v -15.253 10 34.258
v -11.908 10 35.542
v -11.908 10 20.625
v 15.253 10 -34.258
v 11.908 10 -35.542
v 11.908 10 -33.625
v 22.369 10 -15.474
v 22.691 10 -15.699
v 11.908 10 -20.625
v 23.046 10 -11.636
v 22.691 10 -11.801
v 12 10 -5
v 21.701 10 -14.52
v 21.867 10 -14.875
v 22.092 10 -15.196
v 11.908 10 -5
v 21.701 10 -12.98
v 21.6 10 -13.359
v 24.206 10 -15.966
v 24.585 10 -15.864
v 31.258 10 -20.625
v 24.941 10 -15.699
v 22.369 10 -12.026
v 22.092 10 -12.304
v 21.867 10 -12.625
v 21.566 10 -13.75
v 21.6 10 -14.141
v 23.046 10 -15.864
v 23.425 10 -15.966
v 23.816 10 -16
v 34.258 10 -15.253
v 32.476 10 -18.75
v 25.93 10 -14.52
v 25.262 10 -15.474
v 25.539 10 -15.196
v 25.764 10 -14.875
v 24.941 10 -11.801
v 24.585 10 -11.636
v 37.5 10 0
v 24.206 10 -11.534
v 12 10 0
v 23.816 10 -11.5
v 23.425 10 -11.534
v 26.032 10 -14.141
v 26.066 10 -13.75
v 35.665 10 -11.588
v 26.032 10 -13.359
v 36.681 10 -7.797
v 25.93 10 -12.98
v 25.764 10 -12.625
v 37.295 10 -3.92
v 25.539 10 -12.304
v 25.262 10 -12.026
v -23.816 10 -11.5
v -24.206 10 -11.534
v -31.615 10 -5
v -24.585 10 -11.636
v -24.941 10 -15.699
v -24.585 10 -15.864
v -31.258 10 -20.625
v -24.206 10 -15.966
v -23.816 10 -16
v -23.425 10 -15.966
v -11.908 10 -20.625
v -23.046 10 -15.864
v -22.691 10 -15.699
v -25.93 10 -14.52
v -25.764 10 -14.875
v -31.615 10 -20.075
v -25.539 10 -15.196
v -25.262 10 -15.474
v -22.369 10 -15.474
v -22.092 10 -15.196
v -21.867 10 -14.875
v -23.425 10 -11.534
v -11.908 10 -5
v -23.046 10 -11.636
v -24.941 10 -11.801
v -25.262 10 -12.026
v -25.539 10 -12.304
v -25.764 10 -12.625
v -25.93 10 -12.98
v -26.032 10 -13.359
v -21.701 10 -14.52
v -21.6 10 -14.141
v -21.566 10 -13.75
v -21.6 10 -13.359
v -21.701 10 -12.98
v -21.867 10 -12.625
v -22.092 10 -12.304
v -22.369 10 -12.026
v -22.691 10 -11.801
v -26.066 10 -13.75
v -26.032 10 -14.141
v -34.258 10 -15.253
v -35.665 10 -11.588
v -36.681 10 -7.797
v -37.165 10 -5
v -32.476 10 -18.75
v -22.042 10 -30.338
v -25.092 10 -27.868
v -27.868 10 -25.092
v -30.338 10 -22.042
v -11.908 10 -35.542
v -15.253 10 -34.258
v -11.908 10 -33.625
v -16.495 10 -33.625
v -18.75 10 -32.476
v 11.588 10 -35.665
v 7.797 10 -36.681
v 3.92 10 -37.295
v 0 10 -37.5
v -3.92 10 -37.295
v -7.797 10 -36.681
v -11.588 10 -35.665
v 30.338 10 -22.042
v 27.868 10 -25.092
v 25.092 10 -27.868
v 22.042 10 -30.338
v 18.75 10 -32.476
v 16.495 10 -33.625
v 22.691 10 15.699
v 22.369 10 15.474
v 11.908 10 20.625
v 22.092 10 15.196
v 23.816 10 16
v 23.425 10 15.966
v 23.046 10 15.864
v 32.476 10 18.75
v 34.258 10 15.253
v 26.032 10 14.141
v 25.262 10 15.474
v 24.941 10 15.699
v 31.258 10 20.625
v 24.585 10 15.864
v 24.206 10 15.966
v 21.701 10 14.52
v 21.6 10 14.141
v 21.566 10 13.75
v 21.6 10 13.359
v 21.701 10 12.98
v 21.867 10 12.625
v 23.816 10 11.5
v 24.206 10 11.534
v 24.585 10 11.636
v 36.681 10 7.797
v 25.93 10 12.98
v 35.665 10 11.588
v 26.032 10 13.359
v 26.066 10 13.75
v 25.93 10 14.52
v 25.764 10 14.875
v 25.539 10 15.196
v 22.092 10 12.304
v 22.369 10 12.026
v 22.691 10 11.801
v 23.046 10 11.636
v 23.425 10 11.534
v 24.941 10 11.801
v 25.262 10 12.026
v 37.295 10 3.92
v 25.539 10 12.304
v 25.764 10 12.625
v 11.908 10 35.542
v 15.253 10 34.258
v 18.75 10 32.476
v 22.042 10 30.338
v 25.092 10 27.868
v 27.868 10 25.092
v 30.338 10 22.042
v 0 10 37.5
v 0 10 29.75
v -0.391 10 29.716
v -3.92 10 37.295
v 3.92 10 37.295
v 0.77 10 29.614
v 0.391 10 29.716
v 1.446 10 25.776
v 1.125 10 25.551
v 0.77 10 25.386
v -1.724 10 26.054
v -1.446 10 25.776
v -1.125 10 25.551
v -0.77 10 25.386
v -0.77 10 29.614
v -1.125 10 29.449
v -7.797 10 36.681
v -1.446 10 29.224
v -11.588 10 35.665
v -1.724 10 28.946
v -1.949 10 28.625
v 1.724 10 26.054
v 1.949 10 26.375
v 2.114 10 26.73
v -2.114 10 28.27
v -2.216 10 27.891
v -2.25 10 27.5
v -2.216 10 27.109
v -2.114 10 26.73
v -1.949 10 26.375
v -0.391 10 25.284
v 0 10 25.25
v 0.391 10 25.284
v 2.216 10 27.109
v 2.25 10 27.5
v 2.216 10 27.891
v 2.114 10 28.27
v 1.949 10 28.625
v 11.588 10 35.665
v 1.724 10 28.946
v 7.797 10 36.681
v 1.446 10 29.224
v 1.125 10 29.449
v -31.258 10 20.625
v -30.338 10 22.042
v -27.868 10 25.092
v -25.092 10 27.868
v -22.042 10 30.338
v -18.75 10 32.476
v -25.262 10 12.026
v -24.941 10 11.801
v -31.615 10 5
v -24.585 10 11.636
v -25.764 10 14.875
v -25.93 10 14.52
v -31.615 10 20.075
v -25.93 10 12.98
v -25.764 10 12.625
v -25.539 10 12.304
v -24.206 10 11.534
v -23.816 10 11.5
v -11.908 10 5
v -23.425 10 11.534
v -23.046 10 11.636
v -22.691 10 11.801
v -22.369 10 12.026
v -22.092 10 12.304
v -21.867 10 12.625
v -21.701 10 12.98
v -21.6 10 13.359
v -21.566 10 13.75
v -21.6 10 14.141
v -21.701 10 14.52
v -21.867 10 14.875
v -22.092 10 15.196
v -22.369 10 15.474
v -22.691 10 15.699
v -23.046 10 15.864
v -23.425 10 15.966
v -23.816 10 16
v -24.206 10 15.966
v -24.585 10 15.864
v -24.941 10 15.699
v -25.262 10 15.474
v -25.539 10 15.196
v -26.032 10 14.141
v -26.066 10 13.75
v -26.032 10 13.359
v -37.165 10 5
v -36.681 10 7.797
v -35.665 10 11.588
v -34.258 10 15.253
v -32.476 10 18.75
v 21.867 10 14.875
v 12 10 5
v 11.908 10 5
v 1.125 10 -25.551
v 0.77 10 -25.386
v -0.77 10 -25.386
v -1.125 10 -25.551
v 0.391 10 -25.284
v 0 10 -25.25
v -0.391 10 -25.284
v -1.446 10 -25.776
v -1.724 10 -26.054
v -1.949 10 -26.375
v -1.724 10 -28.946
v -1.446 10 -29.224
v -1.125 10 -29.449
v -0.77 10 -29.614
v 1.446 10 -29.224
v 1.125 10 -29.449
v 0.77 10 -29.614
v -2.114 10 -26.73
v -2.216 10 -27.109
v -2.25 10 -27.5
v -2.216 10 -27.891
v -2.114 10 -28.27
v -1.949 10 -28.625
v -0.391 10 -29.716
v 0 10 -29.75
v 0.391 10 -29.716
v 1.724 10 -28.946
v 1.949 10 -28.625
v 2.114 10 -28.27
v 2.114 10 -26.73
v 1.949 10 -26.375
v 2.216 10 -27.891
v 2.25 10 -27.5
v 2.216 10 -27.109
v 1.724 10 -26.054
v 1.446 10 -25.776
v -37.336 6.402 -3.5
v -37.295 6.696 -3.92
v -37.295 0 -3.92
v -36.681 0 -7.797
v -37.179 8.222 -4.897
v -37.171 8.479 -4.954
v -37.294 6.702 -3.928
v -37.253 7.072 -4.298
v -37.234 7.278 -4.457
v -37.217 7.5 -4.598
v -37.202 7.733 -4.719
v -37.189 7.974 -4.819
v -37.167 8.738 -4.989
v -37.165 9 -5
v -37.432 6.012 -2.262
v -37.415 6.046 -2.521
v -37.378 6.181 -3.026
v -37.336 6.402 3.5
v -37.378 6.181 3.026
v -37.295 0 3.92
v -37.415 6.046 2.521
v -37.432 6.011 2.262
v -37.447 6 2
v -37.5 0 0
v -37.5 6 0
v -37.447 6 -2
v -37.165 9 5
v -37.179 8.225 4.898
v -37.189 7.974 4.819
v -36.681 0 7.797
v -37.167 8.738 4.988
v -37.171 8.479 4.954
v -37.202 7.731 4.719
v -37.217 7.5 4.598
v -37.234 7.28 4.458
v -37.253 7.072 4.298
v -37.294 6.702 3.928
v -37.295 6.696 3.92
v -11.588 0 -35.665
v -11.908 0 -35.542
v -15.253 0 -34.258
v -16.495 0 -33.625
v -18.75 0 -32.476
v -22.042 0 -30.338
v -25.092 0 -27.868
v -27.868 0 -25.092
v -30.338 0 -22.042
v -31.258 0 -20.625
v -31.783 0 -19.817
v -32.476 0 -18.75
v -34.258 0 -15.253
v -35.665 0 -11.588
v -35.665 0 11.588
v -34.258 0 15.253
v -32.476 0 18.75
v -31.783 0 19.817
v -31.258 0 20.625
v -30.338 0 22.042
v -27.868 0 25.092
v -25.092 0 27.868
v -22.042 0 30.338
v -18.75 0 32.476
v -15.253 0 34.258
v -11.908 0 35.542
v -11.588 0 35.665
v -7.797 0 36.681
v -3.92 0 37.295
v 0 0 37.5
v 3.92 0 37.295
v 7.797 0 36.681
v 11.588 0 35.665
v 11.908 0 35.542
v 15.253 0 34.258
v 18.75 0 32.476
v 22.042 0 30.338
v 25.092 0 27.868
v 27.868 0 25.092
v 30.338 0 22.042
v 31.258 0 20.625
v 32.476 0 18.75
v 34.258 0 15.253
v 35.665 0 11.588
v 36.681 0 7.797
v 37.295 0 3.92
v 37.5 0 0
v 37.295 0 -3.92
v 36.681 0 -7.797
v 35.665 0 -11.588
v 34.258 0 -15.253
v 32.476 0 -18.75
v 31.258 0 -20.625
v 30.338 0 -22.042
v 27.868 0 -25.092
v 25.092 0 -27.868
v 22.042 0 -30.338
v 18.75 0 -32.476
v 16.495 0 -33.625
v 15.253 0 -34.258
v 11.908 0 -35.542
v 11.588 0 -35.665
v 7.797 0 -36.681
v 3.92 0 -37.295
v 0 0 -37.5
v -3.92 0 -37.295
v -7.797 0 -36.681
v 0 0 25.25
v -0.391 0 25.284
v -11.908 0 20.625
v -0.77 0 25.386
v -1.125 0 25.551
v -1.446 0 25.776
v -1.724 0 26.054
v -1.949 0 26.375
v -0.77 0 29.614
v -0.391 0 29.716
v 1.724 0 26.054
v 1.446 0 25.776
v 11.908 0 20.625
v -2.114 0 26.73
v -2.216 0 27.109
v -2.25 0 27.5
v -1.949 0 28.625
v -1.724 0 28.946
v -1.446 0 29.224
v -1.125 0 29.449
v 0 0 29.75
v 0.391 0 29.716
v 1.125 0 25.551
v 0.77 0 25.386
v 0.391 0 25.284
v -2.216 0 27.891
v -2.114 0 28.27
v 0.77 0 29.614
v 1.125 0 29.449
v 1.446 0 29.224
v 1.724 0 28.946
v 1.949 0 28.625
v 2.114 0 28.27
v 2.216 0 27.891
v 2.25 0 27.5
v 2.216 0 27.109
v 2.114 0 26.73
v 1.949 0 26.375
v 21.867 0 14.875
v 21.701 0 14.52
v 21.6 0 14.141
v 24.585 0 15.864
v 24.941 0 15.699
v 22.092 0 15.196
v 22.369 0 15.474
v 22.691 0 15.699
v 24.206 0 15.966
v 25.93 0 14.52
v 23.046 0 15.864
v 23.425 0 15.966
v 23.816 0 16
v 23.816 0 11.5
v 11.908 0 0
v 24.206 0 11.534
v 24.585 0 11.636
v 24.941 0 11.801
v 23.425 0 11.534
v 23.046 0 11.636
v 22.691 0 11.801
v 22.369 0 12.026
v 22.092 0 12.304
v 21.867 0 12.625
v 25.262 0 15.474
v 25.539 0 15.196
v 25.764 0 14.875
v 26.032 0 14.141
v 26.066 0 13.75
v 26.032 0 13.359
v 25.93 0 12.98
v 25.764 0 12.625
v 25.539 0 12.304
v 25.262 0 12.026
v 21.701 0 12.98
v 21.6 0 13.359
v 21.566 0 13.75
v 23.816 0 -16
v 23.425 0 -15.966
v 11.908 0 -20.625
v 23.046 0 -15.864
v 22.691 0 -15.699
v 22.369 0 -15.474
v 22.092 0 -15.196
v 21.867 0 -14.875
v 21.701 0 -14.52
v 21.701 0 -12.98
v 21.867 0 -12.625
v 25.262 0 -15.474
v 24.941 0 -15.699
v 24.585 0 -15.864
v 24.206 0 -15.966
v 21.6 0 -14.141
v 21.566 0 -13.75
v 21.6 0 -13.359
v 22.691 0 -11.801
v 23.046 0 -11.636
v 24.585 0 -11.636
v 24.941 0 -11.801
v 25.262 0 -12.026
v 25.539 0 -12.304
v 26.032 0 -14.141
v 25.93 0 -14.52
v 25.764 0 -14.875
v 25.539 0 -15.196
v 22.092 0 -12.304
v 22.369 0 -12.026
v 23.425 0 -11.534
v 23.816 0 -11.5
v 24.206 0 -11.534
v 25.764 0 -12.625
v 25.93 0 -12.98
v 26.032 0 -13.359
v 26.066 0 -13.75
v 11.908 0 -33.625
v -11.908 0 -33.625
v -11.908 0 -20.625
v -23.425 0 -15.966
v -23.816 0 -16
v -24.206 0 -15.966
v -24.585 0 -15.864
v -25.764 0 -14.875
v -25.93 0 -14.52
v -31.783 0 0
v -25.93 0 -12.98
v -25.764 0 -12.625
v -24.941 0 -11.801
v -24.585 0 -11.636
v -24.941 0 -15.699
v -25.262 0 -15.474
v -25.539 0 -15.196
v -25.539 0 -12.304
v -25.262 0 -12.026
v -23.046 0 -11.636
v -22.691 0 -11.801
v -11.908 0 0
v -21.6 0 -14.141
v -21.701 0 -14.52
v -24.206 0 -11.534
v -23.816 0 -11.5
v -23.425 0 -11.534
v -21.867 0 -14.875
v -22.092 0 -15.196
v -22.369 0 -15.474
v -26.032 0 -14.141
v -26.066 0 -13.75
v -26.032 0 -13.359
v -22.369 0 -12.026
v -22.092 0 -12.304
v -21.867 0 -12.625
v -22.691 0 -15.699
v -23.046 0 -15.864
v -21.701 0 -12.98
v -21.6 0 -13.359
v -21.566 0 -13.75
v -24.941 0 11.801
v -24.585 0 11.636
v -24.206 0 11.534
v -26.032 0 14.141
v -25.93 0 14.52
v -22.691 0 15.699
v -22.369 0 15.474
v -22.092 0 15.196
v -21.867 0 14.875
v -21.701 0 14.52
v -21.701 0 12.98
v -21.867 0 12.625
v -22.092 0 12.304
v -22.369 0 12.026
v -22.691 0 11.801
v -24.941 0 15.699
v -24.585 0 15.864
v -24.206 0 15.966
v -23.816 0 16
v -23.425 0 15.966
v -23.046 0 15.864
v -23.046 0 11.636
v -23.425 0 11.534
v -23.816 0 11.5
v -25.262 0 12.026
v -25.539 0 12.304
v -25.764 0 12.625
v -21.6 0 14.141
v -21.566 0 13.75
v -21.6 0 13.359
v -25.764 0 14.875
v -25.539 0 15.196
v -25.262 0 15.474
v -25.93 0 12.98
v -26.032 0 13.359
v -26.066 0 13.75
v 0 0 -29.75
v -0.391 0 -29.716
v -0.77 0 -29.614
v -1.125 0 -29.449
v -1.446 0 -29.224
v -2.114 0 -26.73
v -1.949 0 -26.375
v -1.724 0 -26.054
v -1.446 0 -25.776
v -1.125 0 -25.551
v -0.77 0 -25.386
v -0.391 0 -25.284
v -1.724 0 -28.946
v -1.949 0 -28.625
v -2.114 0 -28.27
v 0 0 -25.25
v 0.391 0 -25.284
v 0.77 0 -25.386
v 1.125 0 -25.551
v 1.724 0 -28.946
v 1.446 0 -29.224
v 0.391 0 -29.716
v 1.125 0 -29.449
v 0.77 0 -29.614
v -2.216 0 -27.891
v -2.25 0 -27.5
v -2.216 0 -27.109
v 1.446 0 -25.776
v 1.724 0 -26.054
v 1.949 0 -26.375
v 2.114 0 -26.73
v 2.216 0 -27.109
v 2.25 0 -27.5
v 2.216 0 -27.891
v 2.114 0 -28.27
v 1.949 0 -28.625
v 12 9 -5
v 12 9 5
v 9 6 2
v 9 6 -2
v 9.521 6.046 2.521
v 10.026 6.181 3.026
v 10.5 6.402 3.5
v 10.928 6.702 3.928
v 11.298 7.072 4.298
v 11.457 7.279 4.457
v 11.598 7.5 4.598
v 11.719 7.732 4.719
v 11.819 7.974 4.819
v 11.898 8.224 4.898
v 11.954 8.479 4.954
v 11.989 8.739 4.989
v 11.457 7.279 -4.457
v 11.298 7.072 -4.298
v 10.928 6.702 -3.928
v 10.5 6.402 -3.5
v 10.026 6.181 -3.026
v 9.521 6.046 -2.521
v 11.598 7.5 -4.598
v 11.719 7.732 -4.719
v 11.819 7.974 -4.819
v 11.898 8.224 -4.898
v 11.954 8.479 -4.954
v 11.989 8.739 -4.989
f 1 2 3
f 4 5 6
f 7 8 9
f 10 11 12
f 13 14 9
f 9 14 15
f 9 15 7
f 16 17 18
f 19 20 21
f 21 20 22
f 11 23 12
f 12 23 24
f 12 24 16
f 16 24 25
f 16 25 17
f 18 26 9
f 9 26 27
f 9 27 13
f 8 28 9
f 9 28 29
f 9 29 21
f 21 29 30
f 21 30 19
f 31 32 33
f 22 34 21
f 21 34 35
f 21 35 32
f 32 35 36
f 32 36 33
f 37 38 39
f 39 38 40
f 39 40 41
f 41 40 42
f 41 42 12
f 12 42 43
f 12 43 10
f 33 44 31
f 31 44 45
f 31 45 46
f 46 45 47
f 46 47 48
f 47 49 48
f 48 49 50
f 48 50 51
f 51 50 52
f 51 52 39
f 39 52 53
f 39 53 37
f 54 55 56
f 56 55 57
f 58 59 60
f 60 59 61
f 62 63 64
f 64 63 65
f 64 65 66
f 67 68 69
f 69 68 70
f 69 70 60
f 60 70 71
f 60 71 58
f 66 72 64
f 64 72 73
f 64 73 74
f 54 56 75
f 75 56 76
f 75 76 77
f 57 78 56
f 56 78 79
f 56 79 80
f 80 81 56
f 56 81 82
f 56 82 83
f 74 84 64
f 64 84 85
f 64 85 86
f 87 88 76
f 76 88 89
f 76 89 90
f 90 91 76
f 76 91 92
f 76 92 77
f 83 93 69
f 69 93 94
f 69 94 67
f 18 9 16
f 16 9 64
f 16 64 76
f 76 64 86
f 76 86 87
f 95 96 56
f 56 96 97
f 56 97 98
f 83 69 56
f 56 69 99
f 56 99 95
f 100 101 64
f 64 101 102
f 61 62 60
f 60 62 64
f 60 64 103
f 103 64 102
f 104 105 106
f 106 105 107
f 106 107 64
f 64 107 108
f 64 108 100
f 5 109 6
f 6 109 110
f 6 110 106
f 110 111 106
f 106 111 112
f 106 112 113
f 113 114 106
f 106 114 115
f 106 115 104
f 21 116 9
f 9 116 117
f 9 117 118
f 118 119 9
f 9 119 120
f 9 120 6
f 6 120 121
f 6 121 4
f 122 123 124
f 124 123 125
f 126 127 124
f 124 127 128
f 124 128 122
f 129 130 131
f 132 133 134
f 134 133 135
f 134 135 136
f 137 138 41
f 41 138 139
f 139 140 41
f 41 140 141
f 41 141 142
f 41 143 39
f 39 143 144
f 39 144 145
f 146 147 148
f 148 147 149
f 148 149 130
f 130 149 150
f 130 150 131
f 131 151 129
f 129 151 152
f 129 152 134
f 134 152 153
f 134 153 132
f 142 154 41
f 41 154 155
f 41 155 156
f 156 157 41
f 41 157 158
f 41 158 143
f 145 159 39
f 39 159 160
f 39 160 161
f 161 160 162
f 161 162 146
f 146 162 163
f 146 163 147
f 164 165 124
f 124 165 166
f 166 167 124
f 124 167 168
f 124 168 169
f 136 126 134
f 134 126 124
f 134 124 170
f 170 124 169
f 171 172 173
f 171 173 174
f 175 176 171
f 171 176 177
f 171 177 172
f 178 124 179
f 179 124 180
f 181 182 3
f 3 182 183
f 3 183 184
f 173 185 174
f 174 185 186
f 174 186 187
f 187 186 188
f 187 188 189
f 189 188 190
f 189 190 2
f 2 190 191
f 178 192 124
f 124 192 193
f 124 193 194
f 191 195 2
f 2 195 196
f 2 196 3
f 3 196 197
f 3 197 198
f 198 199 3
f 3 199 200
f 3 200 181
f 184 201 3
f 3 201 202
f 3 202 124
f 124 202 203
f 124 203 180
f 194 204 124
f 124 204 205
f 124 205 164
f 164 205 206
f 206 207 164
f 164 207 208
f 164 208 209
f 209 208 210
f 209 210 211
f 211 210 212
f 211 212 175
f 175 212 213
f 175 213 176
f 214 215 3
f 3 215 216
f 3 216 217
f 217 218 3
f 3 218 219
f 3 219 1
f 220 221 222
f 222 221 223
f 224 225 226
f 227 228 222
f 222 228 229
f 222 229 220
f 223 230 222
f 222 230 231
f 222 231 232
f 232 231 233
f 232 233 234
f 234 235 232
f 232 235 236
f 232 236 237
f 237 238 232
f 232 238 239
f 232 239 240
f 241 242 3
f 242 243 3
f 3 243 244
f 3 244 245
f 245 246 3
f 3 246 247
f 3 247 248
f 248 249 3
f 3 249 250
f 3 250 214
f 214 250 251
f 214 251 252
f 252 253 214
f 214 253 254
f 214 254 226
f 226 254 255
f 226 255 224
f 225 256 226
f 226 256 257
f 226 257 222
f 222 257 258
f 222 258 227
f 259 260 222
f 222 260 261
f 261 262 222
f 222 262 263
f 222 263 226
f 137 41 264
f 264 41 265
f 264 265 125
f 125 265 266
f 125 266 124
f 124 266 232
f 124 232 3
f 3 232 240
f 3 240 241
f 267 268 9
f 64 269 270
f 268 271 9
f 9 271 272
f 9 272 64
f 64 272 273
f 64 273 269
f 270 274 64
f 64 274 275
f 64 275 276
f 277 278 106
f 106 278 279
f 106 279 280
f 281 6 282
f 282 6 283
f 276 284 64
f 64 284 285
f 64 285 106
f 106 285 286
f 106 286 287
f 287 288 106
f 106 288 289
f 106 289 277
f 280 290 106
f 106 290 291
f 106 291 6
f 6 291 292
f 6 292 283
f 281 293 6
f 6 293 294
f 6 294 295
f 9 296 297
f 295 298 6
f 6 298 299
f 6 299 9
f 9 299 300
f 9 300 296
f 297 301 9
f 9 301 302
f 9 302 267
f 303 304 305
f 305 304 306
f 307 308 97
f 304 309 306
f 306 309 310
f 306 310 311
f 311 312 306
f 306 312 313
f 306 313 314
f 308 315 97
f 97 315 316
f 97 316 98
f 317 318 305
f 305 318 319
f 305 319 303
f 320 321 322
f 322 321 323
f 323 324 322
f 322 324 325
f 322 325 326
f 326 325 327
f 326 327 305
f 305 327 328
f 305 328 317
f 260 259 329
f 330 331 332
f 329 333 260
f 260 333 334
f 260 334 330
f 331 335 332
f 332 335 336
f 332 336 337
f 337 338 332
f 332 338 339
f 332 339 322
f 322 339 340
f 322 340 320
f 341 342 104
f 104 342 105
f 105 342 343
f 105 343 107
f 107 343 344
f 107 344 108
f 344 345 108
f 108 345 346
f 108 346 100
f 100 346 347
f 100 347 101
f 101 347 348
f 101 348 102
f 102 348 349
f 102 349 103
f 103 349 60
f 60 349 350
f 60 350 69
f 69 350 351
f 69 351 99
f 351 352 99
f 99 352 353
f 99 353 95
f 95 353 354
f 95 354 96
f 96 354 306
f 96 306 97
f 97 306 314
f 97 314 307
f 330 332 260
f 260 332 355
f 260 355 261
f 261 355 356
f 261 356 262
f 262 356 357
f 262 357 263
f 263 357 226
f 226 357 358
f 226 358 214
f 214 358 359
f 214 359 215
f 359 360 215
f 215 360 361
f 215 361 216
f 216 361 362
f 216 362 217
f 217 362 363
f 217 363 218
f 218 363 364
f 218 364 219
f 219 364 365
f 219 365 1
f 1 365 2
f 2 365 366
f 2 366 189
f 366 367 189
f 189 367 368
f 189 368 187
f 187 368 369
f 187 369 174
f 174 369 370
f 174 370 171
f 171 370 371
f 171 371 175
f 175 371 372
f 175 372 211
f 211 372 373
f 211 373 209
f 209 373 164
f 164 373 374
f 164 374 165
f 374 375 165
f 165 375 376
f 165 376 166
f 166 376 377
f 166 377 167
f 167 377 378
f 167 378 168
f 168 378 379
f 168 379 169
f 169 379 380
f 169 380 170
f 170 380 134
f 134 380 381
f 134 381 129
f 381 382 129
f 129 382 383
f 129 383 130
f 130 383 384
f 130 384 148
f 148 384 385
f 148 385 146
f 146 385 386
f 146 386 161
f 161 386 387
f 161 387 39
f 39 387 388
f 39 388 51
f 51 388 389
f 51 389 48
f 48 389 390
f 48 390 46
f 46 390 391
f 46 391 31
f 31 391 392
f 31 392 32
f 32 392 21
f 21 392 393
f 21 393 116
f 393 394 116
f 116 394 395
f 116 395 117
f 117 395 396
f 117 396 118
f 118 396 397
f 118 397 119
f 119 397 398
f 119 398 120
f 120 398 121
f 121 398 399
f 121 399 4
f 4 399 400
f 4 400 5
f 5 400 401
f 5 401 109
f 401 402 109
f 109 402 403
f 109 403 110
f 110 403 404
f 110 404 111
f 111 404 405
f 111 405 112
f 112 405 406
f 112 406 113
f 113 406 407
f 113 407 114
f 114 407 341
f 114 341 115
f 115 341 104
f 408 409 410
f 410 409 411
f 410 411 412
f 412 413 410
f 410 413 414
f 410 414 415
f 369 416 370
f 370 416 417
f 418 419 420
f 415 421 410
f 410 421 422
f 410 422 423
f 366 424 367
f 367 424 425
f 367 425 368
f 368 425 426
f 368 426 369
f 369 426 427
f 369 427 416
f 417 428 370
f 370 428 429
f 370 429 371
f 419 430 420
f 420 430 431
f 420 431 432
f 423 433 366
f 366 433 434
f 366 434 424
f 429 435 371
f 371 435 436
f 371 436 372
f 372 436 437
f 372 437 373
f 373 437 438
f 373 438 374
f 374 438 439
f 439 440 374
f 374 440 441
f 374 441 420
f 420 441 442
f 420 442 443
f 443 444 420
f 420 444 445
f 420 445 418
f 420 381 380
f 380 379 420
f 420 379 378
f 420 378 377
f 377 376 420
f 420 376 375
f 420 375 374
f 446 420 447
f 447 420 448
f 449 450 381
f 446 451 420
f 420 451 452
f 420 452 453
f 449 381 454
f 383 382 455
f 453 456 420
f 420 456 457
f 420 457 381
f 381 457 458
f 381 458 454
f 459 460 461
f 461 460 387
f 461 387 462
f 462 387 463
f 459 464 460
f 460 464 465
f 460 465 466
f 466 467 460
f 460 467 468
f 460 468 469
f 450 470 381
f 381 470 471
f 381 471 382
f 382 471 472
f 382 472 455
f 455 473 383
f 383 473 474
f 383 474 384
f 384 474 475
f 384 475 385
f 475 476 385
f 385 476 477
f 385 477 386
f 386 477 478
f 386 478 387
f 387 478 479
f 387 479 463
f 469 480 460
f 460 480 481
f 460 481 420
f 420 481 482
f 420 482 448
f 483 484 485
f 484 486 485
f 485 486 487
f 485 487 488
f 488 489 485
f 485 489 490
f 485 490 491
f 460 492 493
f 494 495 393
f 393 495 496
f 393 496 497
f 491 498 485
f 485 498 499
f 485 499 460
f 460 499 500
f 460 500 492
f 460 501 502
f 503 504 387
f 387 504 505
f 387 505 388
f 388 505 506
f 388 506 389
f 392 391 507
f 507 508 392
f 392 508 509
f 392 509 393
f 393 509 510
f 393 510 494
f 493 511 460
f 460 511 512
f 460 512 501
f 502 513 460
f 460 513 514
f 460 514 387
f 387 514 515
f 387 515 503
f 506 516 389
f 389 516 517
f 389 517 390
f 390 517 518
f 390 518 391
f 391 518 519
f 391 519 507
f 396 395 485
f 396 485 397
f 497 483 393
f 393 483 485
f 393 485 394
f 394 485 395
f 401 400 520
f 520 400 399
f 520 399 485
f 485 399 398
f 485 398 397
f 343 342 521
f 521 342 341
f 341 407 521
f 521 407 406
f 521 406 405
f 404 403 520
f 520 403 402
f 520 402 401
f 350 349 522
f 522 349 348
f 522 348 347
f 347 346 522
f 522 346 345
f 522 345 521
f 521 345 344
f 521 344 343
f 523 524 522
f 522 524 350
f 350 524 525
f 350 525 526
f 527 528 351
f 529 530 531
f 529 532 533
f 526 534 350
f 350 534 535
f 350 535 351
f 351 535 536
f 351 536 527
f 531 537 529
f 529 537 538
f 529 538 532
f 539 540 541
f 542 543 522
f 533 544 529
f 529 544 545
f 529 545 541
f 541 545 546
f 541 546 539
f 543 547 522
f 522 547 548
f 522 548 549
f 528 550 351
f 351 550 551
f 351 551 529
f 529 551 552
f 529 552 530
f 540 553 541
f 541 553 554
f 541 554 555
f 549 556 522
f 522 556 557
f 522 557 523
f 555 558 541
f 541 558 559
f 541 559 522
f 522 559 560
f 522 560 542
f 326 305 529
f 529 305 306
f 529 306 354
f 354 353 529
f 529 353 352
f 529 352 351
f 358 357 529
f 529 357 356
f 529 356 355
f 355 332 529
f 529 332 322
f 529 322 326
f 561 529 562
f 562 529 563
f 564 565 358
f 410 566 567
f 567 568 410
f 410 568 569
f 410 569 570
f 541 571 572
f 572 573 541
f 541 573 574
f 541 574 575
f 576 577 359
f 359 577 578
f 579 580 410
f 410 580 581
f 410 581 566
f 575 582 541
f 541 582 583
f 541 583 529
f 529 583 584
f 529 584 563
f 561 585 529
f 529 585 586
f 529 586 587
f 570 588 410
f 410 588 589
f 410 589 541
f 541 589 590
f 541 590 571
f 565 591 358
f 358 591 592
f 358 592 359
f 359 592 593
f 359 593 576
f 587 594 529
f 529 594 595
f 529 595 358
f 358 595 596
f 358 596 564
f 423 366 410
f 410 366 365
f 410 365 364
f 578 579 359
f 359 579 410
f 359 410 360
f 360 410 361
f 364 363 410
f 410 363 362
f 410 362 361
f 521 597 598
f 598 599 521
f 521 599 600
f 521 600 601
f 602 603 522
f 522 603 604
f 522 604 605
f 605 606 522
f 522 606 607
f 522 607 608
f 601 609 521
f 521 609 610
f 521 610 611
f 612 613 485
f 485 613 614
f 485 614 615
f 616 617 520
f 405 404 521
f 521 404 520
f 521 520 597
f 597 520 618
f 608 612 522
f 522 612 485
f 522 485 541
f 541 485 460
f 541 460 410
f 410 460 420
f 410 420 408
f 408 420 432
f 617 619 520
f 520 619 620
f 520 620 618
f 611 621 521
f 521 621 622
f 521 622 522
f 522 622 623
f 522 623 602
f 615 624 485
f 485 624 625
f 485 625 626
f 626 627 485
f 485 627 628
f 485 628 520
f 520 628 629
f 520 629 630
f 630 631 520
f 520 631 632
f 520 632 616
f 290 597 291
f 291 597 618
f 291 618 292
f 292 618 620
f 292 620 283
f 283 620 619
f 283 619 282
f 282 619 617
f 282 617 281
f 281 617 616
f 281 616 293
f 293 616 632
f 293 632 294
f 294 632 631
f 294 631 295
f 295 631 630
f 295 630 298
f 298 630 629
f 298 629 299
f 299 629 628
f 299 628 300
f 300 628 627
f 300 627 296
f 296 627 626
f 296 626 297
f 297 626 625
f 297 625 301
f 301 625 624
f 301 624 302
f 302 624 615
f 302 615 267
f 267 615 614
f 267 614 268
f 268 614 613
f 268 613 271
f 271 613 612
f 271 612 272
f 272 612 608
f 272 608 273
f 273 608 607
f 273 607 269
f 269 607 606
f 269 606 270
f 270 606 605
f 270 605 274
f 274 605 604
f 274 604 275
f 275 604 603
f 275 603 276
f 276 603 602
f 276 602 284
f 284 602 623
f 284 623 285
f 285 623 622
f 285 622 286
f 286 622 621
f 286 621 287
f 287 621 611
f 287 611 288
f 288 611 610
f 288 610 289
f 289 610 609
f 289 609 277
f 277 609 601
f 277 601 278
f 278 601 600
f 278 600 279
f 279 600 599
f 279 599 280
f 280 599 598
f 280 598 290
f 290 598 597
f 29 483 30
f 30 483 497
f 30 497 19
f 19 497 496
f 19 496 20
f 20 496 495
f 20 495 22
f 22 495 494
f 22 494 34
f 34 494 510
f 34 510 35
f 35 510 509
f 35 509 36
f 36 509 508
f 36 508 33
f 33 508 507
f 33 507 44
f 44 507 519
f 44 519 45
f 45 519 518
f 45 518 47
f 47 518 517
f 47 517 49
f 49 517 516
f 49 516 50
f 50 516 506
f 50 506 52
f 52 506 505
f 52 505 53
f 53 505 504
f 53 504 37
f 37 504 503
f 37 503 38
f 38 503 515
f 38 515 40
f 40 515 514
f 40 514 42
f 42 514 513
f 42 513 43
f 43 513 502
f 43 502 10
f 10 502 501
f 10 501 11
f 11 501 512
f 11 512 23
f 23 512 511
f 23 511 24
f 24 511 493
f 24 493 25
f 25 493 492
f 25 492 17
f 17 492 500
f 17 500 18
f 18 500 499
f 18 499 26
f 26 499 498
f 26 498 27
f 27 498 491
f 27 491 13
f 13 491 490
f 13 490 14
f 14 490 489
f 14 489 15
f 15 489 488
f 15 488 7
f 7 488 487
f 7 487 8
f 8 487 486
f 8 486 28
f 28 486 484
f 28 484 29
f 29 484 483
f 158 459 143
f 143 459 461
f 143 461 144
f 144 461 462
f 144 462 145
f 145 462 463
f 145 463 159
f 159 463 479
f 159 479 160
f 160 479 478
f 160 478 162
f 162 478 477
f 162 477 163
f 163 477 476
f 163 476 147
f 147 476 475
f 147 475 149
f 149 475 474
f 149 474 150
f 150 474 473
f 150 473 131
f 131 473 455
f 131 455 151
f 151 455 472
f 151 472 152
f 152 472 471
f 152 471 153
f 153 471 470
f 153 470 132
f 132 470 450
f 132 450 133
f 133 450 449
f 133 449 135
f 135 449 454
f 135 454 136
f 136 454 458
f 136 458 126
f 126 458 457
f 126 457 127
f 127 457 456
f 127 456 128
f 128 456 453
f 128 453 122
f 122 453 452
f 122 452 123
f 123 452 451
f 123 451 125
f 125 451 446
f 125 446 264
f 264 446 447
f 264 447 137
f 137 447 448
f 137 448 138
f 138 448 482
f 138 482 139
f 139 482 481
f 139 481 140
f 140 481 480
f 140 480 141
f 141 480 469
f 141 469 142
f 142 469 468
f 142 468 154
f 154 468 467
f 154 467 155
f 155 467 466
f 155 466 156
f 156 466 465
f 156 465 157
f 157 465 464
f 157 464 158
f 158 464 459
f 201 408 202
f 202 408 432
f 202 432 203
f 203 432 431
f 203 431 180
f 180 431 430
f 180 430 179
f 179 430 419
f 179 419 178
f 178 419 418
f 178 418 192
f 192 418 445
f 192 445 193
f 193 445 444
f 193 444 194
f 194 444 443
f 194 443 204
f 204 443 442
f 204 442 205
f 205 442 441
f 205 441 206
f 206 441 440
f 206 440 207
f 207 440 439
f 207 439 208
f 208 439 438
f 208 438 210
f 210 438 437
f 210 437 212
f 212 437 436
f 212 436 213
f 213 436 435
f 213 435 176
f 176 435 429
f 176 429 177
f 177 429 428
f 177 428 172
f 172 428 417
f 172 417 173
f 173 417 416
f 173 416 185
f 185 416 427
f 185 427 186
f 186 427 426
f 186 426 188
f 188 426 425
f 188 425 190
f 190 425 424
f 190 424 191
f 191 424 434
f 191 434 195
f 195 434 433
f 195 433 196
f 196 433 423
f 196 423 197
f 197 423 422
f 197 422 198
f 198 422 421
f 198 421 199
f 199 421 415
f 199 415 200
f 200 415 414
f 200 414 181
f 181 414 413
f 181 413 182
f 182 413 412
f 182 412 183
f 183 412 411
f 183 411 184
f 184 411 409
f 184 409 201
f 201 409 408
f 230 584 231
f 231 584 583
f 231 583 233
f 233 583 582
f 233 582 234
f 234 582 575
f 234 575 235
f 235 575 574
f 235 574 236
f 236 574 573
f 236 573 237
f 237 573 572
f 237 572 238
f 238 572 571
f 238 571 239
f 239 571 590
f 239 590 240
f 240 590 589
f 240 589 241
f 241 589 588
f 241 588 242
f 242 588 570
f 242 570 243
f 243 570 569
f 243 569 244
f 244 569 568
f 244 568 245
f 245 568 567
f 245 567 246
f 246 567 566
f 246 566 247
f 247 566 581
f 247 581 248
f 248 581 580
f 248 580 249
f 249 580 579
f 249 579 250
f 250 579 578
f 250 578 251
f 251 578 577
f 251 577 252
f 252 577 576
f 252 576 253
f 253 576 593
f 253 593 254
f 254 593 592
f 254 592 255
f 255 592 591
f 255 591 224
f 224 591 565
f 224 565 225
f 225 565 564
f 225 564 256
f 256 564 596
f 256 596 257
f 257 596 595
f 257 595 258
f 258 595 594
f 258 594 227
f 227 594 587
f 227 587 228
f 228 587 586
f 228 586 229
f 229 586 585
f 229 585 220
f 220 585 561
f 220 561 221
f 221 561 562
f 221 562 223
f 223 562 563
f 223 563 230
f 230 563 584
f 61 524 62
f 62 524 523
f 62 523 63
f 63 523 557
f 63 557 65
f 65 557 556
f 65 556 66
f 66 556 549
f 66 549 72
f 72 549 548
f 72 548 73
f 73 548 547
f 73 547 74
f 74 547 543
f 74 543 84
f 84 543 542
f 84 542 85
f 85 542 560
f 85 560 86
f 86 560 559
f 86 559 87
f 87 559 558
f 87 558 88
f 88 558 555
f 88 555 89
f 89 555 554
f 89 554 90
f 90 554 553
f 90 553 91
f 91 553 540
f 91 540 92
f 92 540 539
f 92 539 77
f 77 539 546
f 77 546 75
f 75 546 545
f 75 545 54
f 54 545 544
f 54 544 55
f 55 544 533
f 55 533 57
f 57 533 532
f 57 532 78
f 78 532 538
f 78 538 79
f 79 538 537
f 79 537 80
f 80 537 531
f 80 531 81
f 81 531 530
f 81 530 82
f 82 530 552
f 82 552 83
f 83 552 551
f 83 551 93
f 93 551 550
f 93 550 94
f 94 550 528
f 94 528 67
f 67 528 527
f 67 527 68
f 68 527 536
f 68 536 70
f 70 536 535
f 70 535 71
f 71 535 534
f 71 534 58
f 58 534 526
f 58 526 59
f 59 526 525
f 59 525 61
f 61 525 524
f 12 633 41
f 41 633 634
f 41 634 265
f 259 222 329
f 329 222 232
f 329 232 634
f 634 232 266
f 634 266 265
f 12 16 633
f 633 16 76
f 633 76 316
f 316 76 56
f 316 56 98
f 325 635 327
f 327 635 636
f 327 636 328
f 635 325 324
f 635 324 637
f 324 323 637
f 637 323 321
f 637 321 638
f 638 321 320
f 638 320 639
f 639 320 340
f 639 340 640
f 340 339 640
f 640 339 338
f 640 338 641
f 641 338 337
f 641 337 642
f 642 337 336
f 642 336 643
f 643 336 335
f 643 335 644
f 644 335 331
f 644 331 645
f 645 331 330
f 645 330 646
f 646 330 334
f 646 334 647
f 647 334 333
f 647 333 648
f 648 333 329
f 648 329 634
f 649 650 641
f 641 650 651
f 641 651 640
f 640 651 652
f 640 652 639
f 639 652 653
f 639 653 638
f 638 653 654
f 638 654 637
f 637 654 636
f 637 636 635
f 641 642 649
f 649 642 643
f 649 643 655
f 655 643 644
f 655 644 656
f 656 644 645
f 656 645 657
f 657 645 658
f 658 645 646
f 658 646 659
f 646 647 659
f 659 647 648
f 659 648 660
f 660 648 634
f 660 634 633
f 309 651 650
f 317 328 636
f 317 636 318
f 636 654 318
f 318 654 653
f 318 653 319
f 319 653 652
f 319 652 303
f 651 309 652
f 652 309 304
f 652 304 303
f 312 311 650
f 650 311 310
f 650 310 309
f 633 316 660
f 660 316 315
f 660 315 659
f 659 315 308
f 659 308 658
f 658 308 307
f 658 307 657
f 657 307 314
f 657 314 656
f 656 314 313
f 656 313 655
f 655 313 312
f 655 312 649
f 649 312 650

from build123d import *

# Parameters (mm, degrees)
SKETCH1_R           = 37.5
SKETCH1_R_2         = 2.25
BOSS_EXTRUDE1_DEPTH = 10
CUT_EXTRUDE1_DEPTH  = 4
FILLET1_R           = 3


with BuildPart() as part:
    # Sketch1 → Boss-Extrude1 (new body)
    with BuildSketch(Plane(origin=(0, 0, 0), x_dir=(1, 0, 0), z_dir=(0, 1, 0))):
        Circle(SKETCH1_R)
        with Locations((0, 27.5)):
            Circle(SKETCH1_R_2, mode=Mode.SUBTRACT)
        with Locations((23.815698604, 13.75)):
            Circle(SKETCH1_R_2, mode=Mode.SUBTRACT)
        with Locations((23.815698604, -13.75)):
            Circle(SKETCH1_R_2, mode=Mode.SUBTRACT)
        with Locations((0, -27.5)):
            Circle(SKETCH1_R_2, mode=Mode.SUBTRACT)
        with Locations((-23.815698604, -13.75)):
            Circle(SKETCH1_R_2, mode=Mode.SUBTRACT)
        with Locations((-23.815698604, 13.75)):
            Circle(SKETCH1_R_2, mode=Mode.SUBTRACT)
    extrude(amount=BOSS_EXTRUDE1_DEPTH)

    # Sketch2 → Cut-Extrude1 (cut)
    with BuildSketch(Plane(origin=(0, 10, 0), x_dir=(1, 0, 0), z_dir=(0, 1, 0))):
        with BuildLine():
            Line((12, -5), (12, 0))
            Line((12, 0), (12, 5))
            Line((12, 5), (-37.165171868, 5))
            ThreePointArc((-37.165171868, 5), (-37.5, 0), (-37.165171868, -5))
            Line((-37.165171868, -5), (12, -5))
        make_face()
    extrude(amount=-CUT_EXTRUDE1_DEPTH, mode=Mode.SUBTRACT)

    # Fillet1
    fillet1_edges = [part.edges().sort_by_distance(p)[0] for p in [
        (-12.582585934, 6, -5),
        (12, 6, 0),
        (-12.582585934, 6, 5),
    ]]
    fillet(fillet1_edges, radius=FILLET1_R)


solid = part.part
